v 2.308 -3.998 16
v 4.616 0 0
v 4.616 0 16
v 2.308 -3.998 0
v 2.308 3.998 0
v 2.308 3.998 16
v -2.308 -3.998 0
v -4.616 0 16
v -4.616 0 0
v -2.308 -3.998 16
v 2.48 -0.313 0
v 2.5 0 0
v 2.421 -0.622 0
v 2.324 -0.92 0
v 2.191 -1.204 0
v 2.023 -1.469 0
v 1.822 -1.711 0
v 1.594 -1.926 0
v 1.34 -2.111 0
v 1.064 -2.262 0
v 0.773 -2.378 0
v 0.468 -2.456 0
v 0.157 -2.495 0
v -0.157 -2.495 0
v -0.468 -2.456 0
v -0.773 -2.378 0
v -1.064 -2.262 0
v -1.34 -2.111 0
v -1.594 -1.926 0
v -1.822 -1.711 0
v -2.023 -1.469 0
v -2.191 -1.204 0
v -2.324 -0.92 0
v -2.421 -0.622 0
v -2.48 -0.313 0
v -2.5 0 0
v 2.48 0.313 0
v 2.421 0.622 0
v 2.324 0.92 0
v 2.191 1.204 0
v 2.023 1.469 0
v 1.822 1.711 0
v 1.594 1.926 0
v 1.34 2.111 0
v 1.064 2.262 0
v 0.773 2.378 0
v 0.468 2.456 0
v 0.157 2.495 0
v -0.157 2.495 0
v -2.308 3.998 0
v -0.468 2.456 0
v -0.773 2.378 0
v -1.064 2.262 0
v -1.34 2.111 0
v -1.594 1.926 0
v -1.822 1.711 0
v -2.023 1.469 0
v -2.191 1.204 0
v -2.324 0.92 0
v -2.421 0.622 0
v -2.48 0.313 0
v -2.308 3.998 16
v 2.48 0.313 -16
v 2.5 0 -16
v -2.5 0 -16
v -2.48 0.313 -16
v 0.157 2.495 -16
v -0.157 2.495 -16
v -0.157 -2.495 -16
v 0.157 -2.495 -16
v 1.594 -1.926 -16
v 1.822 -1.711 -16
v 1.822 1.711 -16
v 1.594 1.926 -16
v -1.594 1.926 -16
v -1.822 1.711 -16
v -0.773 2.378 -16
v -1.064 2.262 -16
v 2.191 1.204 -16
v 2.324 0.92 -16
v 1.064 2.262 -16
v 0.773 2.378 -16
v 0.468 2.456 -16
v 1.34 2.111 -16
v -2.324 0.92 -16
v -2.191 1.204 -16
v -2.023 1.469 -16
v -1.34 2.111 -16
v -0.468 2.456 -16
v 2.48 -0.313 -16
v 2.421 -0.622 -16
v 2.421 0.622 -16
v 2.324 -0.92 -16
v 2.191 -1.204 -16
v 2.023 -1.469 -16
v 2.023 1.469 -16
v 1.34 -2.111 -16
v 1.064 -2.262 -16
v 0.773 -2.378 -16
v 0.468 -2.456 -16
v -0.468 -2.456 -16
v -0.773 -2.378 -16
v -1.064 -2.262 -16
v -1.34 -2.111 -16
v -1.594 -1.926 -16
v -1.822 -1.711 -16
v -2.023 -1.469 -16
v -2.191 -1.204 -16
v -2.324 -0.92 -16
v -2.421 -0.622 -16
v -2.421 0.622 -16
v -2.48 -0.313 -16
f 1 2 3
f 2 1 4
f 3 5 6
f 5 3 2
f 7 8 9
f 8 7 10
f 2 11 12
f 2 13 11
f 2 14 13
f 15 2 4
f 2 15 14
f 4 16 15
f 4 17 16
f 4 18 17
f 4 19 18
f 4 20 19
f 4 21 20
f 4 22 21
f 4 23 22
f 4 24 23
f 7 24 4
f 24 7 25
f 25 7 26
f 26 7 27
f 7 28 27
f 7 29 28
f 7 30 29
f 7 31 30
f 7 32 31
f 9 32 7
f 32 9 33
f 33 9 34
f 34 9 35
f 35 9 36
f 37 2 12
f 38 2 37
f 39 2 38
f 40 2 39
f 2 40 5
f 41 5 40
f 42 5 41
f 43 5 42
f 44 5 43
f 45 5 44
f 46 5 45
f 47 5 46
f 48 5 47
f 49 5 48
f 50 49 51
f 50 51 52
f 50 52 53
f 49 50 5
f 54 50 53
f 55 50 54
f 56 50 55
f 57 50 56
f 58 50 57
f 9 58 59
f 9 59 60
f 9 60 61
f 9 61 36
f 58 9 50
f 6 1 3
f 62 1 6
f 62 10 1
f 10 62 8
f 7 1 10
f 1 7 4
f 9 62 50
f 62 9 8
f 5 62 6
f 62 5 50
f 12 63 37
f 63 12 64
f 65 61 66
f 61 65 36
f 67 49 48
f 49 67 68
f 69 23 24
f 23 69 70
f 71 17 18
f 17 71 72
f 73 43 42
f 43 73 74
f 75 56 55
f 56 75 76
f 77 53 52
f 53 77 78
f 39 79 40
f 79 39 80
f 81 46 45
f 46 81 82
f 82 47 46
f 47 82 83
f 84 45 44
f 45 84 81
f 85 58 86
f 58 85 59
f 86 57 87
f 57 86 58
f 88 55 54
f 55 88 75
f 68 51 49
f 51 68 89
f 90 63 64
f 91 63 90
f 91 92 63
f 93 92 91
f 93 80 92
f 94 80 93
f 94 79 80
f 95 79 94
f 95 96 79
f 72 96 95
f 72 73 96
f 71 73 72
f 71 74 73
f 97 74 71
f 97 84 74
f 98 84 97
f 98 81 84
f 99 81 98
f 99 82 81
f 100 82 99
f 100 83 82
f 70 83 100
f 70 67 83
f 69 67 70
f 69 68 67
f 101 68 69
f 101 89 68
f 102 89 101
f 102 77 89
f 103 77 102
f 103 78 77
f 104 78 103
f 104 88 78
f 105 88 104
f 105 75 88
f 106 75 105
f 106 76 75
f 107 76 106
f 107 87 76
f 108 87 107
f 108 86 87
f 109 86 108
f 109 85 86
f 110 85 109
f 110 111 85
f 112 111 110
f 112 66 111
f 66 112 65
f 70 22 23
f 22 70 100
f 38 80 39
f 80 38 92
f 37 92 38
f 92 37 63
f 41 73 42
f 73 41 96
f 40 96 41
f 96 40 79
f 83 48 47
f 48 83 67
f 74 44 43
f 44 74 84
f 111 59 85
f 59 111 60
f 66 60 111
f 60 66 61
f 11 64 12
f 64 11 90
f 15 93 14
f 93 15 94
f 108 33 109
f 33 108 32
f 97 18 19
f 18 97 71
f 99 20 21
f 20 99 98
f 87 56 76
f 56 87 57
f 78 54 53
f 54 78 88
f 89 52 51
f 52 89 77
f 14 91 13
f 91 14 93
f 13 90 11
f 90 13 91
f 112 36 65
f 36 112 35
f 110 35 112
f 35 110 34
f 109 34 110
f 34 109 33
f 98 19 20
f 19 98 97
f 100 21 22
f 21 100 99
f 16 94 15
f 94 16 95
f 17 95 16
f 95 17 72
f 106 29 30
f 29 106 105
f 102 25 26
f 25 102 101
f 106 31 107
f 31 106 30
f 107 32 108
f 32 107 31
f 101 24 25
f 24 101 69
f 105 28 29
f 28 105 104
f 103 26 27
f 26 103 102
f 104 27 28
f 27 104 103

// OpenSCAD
$fn = 50;


difference() {
	union() {
		linear_extrude(height = 16) {
			polygon(points = [[4.6160000000, 0.0000000000], [2.3080000000, 3.9975732639], [-2.3080000000, 3.9975732639], [-4.6160000000, 0.0000000000], [-2.3080000000, -3.9975732639], [2.3080000000, -3.9975732639]]);
		}
		translate(v = [0, 0, -16]) {
			cylinder(h = 16, r = 2.5000000000);
		}
	}
	union();
}
